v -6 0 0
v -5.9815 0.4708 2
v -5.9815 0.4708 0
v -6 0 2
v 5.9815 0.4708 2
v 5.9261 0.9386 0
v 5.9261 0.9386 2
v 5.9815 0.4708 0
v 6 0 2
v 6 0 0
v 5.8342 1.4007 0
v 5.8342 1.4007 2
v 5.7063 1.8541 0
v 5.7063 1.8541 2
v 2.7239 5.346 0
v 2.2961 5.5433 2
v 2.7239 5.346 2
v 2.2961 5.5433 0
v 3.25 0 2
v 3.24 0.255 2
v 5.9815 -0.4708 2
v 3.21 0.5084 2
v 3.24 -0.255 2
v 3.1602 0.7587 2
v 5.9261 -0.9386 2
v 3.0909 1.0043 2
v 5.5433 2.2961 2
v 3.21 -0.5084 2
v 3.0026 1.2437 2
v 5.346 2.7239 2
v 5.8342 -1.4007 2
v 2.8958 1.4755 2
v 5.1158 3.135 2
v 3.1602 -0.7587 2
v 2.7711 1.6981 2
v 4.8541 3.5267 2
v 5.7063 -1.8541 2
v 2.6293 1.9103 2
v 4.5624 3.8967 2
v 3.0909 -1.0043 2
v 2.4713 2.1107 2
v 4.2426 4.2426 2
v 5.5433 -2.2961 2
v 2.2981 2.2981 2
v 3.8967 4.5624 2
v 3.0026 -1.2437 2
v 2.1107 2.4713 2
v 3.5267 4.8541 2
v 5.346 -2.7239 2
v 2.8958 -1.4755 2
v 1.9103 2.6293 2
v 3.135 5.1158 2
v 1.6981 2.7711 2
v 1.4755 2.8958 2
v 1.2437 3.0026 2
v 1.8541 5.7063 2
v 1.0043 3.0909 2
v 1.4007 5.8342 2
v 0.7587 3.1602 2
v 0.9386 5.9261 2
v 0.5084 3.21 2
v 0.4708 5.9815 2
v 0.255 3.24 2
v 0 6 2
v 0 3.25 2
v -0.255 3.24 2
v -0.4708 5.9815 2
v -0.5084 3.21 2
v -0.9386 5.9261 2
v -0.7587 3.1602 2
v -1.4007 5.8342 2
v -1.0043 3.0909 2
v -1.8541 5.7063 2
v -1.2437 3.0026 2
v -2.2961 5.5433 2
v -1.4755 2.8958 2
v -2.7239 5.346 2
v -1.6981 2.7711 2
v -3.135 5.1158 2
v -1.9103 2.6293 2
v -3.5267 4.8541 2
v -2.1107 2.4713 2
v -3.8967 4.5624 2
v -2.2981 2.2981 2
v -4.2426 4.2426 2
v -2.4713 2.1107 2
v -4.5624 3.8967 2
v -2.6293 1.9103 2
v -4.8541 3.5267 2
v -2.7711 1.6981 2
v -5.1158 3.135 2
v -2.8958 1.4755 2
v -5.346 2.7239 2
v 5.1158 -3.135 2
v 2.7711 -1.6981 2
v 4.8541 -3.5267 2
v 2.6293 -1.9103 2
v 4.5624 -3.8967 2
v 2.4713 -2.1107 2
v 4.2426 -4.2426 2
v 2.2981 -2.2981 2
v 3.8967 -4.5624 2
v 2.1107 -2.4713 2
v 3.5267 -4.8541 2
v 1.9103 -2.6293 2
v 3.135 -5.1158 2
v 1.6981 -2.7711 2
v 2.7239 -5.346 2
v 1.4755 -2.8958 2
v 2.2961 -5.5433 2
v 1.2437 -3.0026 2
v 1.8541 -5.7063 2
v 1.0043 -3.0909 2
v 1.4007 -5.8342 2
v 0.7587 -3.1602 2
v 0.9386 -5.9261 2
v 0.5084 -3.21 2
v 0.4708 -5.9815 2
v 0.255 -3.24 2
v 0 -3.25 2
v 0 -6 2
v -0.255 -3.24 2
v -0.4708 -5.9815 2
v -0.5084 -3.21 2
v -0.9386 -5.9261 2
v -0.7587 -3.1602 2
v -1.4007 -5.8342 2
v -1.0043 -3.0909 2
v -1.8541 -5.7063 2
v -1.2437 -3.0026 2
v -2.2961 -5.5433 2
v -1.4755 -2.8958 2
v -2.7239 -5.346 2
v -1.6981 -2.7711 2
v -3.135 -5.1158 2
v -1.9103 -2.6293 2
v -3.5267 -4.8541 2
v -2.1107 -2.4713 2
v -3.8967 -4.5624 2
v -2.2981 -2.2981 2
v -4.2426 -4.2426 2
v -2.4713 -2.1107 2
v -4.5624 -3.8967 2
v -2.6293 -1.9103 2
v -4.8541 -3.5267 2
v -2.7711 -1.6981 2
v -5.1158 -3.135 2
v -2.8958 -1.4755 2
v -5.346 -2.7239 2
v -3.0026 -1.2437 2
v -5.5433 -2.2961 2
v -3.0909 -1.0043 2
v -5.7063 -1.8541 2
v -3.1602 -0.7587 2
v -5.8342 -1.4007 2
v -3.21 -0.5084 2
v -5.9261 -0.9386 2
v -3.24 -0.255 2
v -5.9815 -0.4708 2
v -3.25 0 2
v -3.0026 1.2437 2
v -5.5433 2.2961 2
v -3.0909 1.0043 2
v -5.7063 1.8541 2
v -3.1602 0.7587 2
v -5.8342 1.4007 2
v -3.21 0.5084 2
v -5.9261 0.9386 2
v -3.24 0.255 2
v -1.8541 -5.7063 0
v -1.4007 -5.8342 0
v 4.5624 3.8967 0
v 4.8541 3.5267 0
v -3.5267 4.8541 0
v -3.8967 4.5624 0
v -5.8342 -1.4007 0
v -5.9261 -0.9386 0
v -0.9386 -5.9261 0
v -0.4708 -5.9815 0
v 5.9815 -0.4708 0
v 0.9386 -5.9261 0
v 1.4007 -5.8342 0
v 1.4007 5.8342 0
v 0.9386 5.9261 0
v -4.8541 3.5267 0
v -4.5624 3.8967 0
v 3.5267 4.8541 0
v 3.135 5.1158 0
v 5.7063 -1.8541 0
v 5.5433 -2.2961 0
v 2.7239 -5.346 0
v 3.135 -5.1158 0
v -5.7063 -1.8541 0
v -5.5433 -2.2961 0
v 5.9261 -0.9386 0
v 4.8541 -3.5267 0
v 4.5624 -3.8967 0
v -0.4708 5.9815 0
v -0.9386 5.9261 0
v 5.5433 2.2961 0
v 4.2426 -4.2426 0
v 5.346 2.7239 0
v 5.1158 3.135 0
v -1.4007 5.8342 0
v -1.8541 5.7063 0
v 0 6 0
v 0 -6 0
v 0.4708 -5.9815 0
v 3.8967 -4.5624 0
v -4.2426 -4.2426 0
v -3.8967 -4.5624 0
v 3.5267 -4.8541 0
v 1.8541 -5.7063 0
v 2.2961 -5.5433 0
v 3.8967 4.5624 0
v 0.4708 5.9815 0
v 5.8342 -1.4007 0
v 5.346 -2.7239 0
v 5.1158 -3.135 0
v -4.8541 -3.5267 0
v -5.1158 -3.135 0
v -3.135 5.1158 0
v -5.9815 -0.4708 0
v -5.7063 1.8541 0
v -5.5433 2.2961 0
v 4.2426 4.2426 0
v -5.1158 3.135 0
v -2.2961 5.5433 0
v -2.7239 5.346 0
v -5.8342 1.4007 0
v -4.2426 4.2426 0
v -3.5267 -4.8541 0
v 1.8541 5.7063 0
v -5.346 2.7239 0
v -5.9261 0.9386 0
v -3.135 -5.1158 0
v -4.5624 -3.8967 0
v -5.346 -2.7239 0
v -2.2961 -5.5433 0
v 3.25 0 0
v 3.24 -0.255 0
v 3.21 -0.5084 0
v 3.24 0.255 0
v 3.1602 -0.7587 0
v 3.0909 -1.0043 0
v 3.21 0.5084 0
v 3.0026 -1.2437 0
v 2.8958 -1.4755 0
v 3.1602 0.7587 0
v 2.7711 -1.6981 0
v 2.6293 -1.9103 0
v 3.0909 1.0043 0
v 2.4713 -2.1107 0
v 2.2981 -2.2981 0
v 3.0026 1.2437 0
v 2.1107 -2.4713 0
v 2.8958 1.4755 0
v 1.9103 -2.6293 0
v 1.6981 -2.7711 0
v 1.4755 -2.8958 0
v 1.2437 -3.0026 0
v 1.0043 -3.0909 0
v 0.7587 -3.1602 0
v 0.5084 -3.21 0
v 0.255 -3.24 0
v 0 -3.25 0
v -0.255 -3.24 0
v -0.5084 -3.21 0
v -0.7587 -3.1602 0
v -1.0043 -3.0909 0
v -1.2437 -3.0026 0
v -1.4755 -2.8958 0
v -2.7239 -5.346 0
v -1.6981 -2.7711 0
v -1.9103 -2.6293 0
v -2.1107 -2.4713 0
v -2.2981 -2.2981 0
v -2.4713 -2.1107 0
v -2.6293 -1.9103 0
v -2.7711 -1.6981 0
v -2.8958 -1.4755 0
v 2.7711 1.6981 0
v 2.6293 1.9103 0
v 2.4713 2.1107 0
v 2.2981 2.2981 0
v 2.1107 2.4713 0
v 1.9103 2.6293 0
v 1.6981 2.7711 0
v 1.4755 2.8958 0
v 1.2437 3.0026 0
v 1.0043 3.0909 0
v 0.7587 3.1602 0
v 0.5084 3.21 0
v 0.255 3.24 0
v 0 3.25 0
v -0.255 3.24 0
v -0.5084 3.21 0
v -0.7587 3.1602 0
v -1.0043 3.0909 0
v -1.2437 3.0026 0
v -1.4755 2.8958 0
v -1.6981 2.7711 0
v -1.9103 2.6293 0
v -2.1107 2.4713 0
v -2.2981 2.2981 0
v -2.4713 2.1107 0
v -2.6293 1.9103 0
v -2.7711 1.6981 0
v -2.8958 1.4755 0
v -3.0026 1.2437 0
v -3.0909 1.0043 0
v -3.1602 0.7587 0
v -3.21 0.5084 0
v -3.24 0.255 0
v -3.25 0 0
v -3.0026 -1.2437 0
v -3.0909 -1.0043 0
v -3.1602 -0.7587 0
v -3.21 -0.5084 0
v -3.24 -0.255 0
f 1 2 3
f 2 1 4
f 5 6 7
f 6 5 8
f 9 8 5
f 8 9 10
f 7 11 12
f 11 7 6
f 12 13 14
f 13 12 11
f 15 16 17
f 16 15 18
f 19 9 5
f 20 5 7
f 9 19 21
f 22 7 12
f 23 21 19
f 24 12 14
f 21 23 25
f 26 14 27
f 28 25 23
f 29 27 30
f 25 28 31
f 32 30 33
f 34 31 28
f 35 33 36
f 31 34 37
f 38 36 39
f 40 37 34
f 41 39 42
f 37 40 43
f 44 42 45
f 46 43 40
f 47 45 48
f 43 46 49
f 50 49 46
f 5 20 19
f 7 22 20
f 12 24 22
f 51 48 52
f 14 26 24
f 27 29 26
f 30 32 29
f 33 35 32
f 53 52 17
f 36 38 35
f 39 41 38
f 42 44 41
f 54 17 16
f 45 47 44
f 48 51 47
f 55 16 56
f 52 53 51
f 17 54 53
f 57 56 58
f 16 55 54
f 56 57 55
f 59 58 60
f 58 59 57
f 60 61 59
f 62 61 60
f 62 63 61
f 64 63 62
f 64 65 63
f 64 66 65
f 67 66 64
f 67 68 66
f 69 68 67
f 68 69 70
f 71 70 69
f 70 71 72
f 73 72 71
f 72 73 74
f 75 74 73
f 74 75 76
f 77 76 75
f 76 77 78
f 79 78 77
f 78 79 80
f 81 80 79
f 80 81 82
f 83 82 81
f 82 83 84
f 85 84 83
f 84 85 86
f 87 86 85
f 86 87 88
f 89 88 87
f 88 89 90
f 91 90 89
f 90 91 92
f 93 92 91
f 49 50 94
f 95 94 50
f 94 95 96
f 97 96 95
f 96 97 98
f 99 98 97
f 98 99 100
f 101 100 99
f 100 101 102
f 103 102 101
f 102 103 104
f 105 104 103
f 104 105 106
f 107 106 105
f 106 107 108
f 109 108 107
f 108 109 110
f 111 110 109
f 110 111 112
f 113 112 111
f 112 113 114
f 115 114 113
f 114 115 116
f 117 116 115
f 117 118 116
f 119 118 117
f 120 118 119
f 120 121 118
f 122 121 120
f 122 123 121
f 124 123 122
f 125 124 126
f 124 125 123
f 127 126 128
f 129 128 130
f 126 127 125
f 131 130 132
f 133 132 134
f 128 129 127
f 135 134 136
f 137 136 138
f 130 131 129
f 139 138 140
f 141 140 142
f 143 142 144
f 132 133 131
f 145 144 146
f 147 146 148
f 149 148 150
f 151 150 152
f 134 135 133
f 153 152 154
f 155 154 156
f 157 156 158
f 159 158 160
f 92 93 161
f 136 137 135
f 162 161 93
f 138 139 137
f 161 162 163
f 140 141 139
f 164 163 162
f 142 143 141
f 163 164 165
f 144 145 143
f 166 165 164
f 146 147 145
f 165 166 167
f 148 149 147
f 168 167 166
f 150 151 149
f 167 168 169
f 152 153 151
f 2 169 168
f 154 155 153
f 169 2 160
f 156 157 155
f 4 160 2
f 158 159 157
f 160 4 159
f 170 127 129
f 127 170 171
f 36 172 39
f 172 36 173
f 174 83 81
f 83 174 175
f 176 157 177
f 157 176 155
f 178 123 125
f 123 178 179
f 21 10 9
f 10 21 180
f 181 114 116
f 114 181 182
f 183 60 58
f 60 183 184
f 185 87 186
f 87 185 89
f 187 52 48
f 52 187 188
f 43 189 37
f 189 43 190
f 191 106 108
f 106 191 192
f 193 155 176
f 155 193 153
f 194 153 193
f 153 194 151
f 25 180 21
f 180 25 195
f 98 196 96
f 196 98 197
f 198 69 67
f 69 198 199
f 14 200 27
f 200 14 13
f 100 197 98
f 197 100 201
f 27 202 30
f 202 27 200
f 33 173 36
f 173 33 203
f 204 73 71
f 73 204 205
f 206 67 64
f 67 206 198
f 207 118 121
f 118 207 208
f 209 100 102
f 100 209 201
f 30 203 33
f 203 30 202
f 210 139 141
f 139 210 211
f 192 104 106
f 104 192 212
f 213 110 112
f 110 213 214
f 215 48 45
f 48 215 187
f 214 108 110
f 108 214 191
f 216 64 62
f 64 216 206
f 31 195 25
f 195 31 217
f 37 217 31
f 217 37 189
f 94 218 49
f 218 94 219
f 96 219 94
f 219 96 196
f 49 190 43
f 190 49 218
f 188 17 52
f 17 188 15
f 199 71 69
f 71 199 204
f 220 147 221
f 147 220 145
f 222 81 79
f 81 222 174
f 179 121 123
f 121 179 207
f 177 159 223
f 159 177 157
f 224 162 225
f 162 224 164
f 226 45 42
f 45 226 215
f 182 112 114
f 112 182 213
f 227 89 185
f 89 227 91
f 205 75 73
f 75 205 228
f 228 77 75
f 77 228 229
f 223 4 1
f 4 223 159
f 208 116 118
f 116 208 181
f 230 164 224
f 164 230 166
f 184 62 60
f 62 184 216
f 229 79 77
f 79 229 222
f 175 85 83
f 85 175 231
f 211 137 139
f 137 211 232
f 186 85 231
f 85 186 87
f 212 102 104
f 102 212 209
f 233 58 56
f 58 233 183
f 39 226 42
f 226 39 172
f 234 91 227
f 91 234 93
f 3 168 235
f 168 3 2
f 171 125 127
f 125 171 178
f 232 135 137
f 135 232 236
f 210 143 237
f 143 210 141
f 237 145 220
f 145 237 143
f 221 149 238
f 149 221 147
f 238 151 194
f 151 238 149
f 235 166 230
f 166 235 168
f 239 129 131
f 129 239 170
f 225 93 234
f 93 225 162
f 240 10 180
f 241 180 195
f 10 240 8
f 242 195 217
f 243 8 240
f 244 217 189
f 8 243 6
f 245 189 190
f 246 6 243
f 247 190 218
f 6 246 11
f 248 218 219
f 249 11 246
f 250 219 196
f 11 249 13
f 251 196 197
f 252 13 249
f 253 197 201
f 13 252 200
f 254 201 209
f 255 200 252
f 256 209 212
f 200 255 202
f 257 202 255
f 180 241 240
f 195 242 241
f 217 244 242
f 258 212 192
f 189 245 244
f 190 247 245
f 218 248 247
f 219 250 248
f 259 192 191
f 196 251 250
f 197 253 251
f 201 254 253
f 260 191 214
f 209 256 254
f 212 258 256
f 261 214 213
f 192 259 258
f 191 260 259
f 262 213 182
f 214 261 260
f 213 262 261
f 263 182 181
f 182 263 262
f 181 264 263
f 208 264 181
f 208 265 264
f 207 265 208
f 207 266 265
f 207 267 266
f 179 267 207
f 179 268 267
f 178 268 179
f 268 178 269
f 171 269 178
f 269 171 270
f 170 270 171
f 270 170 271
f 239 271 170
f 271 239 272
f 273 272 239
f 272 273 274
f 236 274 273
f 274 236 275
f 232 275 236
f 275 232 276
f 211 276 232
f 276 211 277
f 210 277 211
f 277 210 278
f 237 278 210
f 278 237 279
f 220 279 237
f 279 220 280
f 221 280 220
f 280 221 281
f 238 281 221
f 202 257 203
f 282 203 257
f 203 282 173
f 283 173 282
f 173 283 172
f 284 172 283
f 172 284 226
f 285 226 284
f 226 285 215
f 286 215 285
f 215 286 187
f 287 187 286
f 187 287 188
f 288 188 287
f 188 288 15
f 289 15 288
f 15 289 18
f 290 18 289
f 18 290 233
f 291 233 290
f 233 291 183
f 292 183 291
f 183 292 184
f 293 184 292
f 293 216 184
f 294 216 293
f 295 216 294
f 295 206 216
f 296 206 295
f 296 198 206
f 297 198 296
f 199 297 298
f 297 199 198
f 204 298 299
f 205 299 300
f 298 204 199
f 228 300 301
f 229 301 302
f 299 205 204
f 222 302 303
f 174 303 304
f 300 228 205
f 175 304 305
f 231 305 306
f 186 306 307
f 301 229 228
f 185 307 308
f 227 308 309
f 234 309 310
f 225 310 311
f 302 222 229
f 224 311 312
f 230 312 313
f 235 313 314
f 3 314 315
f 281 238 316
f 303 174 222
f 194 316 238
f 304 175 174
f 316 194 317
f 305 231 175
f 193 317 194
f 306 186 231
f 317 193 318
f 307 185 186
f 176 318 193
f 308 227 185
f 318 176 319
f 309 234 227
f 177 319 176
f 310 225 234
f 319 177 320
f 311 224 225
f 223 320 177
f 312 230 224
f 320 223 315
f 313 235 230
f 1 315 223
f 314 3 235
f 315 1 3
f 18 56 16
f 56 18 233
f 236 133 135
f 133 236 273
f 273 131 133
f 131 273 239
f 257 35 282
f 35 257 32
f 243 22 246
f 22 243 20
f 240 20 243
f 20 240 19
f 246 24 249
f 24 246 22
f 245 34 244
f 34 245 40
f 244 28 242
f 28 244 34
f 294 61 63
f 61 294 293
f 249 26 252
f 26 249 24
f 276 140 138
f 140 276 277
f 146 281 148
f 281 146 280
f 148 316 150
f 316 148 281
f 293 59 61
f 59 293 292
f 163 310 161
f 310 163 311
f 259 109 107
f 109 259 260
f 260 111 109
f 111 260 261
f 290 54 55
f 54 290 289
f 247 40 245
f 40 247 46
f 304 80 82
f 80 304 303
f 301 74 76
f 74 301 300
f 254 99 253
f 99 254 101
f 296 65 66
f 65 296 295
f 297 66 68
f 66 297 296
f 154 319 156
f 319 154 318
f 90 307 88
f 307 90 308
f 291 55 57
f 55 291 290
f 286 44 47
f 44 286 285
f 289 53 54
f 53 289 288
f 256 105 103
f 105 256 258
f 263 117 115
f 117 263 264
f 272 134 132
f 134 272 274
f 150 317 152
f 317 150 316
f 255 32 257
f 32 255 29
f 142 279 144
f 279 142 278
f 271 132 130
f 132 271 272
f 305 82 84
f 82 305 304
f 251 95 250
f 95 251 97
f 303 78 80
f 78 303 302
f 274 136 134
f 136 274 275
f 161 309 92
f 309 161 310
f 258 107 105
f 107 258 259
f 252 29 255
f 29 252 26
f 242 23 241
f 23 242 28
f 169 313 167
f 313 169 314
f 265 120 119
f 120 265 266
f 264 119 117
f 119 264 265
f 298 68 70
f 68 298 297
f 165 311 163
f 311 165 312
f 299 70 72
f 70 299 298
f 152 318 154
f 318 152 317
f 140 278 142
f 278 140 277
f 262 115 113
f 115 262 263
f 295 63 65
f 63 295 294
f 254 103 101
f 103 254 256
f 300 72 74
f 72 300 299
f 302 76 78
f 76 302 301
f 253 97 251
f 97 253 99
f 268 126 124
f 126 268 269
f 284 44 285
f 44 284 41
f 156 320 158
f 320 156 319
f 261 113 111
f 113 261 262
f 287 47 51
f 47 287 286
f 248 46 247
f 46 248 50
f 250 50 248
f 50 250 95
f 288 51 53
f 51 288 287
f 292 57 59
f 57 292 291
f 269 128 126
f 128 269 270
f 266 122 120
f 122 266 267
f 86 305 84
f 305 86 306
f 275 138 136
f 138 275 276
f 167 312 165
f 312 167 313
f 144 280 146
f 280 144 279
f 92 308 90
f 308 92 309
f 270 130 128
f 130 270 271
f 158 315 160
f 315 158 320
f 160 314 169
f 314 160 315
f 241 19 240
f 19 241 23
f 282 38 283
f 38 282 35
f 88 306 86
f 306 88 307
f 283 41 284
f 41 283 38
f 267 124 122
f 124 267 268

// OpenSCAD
//podlozky

// M6
$fn=80;
difference(){
    cylinder(r=12/2,h=2);
    cylinder(r=6.5/2,h=2);
}   
